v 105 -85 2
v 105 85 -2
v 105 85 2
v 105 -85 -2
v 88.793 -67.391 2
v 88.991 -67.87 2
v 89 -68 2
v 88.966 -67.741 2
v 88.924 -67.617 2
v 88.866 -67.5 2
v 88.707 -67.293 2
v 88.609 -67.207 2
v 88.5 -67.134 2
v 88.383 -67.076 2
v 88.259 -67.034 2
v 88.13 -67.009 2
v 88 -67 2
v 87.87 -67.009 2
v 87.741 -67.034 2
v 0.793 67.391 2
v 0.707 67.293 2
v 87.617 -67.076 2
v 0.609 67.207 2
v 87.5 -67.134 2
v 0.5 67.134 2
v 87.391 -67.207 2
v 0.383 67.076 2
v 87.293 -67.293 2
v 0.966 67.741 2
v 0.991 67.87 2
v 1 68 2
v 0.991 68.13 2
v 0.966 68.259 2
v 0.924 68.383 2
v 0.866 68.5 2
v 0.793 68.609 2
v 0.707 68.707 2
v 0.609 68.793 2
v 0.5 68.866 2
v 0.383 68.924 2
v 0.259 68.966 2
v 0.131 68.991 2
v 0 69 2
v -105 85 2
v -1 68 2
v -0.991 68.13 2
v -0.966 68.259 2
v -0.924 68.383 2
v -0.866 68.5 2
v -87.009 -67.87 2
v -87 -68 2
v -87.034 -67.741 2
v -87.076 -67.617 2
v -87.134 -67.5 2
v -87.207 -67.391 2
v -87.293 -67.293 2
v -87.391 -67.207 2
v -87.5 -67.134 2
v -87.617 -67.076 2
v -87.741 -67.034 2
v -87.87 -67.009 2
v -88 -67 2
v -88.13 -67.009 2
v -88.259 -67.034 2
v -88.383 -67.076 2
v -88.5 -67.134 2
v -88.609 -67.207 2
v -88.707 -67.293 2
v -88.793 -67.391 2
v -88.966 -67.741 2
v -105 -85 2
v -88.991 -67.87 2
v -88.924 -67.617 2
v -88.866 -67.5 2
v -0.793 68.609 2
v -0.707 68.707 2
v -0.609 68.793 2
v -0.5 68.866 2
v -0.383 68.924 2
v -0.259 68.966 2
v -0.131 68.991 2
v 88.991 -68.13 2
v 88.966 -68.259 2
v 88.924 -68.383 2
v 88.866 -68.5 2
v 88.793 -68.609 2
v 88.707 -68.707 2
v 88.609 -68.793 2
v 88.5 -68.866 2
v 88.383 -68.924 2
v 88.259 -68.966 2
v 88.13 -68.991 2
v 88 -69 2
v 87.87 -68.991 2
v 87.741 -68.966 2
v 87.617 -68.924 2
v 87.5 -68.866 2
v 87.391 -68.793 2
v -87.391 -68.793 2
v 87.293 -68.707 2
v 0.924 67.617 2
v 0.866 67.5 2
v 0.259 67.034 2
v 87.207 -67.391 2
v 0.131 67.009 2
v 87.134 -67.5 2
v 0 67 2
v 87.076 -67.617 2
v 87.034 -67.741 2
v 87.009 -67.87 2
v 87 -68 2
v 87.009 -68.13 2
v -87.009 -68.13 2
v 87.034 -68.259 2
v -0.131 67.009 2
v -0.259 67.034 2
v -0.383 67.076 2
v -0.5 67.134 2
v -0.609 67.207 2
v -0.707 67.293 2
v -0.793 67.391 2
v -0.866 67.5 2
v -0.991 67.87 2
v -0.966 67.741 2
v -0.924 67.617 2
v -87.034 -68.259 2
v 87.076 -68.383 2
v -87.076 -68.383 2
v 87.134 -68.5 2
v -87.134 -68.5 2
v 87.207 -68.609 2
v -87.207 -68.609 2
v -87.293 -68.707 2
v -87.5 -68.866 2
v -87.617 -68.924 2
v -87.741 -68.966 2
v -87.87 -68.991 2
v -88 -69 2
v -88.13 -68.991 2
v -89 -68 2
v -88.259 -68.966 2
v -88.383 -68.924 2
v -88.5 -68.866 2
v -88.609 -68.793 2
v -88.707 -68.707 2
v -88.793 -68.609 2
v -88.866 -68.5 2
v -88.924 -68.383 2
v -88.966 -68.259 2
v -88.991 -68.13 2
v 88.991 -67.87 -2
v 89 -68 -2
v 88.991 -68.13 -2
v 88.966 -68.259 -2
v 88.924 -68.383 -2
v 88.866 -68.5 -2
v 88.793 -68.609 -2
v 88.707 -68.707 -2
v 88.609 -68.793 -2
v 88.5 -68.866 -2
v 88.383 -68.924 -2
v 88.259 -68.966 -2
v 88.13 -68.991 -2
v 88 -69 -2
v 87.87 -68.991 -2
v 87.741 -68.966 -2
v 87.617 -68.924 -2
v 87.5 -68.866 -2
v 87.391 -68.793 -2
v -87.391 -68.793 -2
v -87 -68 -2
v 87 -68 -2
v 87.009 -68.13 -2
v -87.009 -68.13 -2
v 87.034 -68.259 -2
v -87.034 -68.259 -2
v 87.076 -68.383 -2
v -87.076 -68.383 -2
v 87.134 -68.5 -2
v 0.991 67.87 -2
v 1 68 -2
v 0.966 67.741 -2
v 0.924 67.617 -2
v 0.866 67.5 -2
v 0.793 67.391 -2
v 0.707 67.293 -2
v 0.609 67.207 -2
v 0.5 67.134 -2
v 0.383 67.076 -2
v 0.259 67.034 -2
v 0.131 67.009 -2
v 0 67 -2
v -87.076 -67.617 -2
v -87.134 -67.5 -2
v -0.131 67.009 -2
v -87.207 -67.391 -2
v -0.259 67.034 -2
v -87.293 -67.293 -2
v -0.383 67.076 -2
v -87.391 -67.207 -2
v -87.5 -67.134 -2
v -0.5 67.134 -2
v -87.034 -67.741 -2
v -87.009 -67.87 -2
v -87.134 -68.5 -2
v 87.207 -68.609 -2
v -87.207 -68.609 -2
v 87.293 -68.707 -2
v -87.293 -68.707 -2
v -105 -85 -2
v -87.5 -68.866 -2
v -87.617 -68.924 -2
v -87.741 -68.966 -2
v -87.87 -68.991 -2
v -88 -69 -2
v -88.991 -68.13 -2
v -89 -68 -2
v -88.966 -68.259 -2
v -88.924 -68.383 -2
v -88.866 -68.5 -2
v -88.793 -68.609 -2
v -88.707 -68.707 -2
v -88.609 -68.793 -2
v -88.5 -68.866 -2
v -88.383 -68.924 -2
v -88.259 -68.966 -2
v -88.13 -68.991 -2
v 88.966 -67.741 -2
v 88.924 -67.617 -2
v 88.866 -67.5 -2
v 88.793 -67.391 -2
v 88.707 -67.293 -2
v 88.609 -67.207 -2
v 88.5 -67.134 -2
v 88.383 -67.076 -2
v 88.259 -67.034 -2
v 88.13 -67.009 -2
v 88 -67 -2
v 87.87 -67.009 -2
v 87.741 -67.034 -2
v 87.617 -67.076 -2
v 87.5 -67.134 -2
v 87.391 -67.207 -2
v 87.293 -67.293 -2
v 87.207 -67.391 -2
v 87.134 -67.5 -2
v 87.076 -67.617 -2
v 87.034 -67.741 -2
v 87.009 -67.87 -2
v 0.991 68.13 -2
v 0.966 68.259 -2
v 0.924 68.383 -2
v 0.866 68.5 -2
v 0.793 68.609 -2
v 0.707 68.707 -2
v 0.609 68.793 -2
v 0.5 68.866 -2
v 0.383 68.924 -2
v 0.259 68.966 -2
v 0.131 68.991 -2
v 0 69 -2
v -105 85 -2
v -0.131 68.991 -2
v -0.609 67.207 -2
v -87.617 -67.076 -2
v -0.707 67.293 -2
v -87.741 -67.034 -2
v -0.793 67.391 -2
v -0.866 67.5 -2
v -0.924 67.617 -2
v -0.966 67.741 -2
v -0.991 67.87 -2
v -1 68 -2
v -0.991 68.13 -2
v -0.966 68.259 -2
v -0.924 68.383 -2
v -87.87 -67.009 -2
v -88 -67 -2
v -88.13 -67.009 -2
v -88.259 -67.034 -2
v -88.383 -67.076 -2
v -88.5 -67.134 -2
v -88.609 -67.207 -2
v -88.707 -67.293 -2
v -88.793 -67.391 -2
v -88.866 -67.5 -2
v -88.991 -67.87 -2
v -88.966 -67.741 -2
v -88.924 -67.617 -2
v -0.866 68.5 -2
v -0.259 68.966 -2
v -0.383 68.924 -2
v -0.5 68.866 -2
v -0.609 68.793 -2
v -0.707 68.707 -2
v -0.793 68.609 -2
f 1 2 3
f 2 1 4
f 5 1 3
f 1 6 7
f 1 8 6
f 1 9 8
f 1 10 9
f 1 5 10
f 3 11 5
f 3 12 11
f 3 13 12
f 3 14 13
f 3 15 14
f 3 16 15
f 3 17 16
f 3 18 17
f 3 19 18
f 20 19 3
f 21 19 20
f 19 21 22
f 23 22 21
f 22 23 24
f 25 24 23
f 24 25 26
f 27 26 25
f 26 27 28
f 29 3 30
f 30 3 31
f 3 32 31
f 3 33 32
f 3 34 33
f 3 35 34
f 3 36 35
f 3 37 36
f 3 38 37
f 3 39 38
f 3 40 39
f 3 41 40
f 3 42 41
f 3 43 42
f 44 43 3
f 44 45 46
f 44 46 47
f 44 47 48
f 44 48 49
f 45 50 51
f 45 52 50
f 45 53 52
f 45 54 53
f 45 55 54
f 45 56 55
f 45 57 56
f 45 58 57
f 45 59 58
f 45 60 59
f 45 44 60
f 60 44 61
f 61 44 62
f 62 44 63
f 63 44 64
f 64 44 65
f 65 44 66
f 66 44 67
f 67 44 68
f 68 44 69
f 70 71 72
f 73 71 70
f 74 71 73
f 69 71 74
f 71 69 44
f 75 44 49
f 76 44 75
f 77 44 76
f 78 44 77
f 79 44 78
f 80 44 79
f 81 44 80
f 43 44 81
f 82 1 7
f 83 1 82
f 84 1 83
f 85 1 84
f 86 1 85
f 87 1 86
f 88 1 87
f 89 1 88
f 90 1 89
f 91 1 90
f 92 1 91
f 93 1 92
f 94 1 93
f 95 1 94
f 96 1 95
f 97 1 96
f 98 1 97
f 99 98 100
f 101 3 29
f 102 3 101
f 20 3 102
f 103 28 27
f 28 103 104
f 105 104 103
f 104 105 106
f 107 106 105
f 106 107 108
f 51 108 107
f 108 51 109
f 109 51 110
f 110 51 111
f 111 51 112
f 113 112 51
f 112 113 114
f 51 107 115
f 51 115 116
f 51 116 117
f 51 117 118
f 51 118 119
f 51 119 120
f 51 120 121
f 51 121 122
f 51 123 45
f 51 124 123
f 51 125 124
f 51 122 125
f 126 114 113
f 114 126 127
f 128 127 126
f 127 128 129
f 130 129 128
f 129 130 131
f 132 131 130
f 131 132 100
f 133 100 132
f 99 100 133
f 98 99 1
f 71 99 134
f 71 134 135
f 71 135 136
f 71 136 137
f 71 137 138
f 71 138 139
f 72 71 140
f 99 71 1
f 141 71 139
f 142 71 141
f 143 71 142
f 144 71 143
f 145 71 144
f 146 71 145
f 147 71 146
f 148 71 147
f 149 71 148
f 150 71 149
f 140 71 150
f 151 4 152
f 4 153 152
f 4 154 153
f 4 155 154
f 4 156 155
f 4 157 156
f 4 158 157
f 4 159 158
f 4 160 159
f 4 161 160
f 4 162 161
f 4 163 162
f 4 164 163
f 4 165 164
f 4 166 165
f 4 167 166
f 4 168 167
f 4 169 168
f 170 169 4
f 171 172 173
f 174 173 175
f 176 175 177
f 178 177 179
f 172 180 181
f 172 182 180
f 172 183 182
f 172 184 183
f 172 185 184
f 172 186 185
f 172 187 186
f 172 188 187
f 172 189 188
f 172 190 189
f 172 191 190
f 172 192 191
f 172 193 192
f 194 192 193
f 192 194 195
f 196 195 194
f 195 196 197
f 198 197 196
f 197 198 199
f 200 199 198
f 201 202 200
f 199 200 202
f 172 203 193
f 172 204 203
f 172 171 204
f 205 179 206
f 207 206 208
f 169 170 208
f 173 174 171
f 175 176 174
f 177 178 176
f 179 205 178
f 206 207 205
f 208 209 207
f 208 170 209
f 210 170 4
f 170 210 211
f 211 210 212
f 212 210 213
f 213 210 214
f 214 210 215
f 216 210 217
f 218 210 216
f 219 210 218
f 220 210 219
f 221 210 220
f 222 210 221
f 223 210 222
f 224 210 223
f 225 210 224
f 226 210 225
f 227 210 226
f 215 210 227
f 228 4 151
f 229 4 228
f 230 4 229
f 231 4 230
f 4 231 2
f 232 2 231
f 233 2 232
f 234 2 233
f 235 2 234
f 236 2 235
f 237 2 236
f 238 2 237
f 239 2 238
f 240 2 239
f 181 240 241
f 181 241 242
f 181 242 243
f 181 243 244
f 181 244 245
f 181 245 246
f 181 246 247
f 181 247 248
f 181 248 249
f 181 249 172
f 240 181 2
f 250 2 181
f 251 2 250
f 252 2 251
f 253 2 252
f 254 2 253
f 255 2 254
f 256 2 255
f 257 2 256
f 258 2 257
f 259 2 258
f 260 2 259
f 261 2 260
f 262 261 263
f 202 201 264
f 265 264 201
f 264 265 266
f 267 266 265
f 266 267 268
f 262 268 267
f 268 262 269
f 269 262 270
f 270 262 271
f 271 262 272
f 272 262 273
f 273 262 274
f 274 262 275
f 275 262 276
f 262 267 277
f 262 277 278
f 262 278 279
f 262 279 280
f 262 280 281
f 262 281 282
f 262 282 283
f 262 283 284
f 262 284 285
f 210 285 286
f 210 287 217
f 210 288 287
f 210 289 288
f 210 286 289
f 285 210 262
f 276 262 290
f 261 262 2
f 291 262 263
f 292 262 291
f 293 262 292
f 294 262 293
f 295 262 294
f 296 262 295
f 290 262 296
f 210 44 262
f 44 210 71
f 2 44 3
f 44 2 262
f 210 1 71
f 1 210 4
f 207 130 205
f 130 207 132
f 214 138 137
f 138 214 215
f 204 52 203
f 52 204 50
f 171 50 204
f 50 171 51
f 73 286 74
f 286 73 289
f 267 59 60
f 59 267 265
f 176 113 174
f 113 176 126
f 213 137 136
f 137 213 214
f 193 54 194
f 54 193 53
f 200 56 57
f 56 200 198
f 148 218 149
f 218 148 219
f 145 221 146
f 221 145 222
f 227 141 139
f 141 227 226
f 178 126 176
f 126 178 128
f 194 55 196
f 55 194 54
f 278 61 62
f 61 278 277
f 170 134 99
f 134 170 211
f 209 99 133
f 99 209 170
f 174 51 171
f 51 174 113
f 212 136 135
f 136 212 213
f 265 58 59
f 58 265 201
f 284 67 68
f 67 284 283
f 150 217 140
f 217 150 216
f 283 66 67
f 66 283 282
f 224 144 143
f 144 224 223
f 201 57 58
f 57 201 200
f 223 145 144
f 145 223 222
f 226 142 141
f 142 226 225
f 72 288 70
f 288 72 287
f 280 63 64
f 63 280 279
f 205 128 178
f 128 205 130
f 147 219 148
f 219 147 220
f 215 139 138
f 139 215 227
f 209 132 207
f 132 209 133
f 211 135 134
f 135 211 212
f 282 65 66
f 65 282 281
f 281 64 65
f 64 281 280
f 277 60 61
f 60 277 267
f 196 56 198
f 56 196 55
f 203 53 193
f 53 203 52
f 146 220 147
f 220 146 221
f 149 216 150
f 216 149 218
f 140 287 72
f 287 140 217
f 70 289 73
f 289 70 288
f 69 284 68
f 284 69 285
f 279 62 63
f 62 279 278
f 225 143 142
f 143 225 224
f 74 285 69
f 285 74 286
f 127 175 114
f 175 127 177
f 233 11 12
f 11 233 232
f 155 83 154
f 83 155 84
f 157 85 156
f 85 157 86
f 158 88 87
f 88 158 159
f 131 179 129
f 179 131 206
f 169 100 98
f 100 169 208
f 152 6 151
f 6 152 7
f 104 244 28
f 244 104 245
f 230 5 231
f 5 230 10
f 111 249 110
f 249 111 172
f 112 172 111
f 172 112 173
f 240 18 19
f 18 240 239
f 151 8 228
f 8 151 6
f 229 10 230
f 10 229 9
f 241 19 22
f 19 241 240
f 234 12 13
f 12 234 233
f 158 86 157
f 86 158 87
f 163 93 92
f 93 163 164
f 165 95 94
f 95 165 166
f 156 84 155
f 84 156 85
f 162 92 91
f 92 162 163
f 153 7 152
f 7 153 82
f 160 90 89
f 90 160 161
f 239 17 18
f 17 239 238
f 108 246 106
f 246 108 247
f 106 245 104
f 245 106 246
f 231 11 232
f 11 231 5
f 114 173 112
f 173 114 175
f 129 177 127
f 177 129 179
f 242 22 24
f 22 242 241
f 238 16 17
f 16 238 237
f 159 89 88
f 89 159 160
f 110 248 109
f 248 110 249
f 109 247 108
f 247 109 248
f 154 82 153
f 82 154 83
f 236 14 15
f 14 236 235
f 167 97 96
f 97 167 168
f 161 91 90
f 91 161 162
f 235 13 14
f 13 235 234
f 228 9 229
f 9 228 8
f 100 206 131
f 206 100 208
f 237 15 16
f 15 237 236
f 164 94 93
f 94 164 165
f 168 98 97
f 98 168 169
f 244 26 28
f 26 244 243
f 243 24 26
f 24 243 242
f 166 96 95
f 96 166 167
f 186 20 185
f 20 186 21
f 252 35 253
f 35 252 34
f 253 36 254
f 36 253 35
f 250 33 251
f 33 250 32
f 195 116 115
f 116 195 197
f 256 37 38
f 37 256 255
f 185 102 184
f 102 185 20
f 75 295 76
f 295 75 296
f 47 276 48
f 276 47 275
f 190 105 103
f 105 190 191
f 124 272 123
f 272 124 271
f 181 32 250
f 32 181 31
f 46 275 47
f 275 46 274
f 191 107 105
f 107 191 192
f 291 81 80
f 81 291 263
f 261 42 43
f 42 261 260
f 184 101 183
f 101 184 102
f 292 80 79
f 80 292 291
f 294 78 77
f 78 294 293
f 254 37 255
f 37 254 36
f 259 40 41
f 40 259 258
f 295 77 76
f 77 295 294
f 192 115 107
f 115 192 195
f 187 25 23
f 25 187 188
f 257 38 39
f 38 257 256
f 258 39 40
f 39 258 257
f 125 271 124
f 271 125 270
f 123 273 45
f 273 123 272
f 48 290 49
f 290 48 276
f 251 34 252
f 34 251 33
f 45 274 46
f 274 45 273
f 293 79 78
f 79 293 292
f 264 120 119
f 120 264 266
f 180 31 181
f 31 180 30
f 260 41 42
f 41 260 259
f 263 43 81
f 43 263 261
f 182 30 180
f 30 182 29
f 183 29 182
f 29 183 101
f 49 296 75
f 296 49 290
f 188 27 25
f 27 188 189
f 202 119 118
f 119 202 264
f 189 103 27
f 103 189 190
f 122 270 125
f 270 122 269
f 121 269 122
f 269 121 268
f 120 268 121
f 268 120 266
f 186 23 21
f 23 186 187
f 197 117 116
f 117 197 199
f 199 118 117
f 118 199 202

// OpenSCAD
// ========================================
// a 210 x 170 x 4 mm plate with three 2 mm holes
// NeuroCAD canonical IR; dimensions are millimetres
// ========================================
$fn = 48;

difference() {
  cube(size=[210, 170, 4], center=true);
  translate([-88, -68, 0]) {
    cylinder(r=1, h=6, center=true);
  }
  translate([88, -68, 0]) {
    cylinder(r=1, h=6, center=true);
  }
  translate([0, 68, 0]) {
    cylinder(r=1, h=6, center=true);
  }
}
